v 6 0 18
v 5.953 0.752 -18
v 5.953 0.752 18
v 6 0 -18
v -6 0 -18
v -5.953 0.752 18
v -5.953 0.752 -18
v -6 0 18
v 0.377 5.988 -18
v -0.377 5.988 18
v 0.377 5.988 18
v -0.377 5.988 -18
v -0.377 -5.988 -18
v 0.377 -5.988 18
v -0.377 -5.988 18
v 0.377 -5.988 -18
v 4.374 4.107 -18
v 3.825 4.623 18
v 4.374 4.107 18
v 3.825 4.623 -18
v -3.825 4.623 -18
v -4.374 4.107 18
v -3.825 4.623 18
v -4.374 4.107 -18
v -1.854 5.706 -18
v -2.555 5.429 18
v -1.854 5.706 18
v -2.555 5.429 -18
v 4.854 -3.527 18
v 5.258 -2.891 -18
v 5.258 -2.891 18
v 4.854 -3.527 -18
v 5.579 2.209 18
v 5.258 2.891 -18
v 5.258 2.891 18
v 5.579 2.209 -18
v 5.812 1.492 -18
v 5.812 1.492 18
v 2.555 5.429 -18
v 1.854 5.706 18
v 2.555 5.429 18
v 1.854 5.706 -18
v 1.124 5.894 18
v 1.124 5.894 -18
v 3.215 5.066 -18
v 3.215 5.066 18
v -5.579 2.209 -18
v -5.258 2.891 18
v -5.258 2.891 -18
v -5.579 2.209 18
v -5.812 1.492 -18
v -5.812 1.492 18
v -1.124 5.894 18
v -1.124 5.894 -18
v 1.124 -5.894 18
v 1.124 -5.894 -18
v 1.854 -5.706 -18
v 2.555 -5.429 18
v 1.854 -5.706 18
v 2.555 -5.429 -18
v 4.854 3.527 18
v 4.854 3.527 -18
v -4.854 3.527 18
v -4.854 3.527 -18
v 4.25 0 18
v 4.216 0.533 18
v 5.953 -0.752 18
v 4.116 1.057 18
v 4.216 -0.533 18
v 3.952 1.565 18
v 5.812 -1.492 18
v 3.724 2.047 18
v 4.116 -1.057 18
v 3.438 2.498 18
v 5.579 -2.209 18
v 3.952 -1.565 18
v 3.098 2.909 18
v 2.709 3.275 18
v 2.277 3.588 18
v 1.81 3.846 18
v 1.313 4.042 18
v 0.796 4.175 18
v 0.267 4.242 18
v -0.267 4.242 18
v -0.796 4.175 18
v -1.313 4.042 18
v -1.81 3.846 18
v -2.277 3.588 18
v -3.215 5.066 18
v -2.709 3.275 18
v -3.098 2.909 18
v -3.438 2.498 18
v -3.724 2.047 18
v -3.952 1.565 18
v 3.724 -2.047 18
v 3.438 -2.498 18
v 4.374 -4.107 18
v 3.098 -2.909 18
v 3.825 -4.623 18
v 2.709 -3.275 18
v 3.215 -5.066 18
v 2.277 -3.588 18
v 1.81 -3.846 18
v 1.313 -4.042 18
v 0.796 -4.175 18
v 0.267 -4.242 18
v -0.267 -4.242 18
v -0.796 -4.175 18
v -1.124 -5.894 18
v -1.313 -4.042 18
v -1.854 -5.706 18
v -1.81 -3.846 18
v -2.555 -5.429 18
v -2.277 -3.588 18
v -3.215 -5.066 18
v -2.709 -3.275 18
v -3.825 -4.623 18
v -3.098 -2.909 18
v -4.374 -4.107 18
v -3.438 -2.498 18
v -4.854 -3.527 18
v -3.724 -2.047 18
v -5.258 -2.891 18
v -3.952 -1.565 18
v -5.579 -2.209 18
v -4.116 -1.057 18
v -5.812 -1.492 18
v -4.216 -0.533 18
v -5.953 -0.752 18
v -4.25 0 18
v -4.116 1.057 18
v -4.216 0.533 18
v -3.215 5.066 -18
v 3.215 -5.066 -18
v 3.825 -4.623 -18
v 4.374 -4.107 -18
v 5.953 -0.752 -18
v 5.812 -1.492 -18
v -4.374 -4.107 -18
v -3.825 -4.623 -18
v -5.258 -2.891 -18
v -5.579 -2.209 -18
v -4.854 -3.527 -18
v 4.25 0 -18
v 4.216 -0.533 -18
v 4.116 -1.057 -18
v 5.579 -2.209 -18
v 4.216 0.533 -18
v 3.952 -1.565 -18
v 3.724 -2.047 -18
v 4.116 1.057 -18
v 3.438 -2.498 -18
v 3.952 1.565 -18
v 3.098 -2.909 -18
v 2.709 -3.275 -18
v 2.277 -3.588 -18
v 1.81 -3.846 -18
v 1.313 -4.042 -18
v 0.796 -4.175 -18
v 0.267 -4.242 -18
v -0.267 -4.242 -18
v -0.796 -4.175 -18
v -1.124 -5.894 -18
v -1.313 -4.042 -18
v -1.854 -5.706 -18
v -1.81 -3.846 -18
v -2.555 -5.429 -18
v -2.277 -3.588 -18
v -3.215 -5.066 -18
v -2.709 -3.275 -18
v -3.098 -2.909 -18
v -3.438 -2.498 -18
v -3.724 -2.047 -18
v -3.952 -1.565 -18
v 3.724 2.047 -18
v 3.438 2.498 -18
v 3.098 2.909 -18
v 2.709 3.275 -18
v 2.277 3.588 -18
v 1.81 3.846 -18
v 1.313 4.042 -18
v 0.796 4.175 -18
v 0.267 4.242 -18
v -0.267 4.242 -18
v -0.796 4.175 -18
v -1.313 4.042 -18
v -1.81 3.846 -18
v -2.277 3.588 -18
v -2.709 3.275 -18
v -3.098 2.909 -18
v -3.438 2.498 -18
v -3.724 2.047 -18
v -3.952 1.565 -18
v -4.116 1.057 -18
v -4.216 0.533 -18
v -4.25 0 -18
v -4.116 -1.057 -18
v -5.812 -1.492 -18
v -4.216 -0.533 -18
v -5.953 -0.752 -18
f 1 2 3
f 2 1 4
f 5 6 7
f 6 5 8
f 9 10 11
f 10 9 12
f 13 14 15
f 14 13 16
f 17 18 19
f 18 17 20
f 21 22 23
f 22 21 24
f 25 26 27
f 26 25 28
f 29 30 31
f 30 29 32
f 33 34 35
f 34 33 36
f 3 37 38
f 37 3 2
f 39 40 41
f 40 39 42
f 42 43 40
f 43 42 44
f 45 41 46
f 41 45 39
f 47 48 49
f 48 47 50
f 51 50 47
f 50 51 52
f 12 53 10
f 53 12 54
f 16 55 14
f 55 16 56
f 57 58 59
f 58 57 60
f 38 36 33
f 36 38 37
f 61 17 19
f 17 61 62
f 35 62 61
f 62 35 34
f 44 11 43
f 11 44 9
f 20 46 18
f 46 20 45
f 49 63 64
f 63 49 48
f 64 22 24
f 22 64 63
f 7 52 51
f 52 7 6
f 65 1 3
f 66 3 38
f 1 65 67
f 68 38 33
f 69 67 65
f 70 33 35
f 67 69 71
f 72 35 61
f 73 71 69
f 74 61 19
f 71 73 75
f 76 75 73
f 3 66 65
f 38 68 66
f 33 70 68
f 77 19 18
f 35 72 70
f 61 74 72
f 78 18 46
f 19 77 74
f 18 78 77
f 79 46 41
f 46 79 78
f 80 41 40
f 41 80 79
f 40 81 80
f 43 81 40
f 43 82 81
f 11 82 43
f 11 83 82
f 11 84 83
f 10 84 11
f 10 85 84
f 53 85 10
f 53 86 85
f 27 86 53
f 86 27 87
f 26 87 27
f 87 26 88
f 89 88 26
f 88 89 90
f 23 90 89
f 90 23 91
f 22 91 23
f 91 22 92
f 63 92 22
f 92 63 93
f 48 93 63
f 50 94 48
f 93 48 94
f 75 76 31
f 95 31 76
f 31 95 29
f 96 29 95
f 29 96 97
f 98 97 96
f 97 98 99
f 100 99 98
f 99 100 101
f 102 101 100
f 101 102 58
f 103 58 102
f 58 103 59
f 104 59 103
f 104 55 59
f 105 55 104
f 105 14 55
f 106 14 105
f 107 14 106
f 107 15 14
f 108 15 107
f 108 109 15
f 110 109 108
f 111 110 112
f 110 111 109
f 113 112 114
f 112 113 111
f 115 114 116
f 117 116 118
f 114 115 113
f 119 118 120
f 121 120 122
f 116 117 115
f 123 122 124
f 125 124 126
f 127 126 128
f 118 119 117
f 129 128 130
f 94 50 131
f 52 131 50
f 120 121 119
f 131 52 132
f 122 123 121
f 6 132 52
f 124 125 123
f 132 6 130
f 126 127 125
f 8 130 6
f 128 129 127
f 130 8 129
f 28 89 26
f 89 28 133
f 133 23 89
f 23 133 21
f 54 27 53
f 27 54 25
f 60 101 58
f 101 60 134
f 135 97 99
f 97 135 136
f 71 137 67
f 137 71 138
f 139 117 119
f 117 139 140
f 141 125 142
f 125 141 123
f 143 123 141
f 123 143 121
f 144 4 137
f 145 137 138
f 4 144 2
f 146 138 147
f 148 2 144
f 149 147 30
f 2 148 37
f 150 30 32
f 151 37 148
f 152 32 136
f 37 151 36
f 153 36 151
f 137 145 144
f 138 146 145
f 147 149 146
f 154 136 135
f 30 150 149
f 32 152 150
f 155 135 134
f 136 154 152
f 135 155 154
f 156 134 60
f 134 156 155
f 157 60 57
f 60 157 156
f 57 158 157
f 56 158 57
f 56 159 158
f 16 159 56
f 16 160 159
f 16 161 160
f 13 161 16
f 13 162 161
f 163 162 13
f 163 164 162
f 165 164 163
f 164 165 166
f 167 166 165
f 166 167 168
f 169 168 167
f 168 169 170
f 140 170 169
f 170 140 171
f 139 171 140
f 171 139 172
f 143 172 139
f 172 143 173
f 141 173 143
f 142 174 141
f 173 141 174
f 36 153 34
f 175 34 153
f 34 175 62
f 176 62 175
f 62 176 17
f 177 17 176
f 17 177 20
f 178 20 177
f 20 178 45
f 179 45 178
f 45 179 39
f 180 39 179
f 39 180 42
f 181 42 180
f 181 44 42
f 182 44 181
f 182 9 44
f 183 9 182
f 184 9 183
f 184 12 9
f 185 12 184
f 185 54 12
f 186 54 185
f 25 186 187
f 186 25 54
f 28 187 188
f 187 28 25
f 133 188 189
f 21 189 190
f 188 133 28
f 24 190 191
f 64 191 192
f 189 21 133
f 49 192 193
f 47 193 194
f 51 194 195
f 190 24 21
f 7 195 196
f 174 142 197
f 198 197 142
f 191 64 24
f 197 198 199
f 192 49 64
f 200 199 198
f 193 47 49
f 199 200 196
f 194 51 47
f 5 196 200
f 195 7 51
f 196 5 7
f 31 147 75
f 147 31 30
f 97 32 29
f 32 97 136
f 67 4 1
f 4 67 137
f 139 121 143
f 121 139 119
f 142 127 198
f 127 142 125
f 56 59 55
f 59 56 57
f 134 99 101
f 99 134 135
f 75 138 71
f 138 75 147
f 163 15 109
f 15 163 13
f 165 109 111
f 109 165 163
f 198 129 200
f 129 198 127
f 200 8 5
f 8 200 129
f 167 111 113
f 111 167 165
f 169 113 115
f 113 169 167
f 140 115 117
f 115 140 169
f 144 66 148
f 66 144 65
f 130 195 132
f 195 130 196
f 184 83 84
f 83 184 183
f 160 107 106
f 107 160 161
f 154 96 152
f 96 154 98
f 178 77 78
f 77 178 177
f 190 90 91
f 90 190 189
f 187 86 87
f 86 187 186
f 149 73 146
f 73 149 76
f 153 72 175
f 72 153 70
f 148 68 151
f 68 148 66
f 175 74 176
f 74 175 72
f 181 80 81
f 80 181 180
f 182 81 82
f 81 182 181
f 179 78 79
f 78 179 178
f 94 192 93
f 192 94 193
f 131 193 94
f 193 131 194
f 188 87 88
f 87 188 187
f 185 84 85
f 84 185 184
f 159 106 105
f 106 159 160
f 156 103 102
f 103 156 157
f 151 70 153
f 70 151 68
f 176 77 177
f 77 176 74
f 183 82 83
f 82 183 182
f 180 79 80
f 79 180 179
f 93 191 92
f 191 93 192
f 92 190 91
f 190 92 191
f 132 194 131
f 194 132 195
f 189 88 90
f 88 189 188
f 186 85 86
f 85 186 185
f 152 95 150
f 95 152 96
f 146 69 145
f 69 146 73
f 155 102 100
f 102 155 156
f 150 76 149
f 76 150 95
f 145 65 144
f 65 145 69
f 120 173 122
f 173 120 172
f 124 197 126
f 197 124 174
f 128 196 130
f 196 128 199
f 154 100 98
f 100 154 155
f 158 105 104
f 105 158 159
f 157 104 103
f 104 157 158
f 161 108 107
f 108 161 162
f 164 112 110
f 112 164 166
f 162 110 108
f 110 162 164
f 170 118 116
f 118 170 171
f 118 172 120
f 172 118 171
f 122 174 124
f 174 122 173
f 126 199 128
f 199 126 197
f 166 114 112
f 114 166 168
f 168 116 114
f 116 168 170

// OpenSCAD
$fn = 50;


difference() {
	union() {
		translate(v = [0, 0, -18.0000000000]) {
			cylinder(h = 36, r = 6.0000000000);
		}
	}
	union() {
		translate(v = [0, 0, -100.0000000000]) {
			cylinder(h = 200, r = 4.2500000000);
		}
	}
}
